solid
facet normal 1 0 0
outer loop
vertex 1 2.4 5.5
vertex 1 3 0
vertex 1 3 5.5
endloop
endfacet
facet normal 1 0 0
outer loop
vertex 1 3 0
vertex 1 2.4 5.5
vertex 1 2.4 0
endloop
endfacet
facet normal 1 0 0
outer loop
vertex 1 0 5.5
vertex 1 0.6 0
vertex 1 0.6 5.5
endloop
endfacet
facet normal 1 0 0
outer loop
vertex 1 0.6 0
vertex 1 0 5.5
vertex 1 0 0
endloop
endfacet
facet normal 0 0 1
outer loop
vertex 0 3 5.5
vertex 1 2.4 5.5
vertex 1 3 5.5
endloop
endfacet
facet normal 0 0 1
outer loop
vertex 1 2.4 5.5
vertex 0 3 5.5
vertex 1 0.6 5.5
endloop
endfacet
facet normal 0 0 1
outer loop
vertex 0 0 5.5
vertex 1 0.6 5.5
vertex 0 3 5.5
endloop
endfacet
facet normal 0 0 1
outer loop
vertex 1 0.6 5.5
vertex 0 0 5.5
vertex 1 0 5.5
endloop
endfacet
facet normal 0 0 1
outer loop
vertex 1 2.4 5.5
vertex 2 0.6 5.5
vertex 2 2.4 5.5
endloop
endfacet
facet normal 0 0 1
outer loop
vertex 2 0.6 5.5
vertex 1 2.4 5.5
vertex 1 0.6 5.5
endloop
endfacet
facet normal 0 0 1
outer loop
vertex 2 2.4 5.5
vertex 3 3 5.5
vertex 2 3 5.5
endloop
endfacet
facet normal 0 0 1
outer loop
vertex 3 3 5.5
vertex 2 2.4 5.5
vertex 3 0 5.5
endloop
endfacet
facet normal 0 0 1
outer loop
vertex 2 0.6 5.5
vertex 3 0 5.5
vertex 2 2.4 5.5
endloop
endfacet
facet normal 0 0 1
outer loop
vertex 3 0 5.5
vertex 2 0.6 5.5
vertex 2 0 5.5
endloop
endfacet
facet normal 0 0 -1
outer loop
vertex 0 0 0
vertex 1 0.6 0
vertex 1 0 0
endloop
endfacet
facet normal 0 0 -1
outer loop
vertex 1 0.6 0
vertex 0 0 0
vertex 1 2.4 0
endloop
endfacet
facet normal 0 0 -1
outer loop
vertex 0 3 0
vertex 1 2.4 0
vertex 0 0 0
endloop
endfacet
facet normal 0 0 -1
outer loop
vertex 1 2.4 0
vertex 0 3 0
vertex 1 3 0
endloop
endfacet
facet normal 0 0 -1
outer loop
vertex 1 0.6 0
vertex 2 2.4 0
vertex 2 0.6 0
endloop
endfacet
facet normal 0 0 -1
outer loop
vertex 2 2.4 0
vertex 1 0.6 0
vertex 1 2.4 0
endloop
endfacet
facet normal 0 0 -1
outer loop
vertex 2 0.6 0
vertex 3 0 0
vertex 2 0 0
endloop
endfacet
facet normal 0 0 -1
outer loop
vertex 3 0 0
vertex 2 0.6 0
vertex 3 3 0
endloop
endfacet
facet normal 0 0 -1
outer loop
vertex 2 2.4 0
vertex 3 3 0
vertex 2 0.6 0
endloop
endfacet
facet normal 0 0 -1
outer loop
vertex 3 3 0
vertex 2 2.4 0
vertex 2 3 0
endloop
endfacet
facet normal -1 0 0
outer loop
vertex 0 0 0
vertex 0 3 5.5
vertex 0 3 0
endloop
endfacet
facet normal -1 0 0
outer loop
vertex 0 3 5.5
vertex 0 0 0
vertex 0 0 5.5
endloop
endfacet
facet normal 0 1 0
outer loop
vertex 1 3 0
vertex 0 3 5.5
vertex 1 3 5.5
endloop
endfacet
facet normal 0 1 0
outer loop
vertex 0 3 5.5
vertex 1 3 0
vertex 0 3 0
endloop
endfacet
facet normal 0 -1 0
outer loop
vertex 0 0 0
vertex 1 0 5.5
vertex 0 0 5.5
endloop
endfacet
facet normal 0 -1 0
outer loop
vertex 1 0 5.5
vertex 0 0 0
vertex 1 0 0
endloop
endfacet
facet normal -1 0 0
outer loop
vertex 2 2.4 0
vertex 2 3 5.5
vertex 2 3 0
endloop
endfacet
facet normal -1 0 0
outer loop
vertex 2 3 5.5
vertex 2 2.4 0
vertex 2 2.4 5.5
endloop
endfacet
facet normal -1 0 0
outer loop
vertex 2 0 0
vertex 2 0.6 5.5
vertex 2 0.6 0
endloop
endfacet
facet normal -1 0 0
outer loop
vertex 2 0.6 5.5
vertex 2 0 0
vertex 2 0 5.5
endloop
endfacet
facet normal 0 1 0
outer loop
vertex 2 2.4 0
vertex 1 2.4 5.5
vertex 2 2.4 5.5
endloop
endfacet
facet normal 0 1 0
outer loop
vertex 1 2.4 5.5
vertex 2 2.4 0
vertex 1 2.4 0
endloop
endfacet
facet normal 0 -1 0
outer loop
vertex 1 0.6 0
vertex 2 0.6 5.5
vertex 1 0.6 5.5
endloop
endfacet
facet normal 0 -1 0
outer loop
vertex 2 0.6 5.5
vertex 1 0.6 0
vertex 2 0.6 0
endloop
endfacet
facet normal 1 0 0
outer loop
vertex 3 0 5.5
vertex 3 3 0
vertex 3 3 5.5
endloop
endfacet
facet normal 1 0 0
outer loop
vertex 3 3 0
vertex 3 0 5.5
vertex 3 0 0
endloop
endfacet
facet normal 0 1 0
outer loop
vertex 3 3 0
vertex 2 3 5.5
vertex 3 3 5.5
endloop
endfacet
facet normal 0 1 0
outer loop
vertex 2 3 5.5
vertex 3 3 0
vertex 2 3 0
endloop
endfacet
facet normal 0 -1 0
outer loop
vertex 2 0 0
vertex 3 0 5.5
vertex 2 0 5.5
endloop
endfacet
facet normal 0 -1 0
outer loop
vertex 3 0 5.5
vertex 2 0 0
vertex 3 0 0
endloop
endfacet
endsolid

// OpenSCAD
// file: settings.scad
/*
 * SPDX-FileCopyrightText: 2022 Rafael G. Martins <rafael@rafaelmartins.eng.br>
 * SPDX-License-Identifier: CERN-OHL-S-2.0
 */

thickness = 2;

pcb_width = 84.582;
pcb_length = 36.322;
pcb_screw1_x = 2.921;
pcb_screw1_y = pcb_length - 5.207 - 12.192;
pcb_screw2_x = pcb_screw1_x + 17.018;
pcb_screw2_y = pcb_screw1_y + 12.192;
pcb_screw3_x = pcb_screw2_x + 22.352;
pcb_screw3_y = pcb_screw2_y;
pcb_screw_base_height = 8;
pcb_screw_base_d = 5;
pcb_screw_d = 2;
pcb_padding_x = thickness + 0.5;
pcb_padding_y = thickness + 1;

screw_d = 2;
screw_h = 7;

usb_height = 4.4;
usb_width = 8.2;
usb_distance_x = pcb_padding_x + 19.939 - usb_width / 2;
usb_distance_z = thickness + pcb_screw_base_height + 1.6 - 0.1;

button0_x = 8.763;
button0_y = 6.985;
button_d = 10;
button_distance = 22.352;

led_width = 1.8;
led_length = 1;
led_margin = 1;
led_x = button0_x + 3 * button_distance;
led_y = 5.207 + 12.192;
led_d = 3.4;

gap = 0;

width = pcb_width + 2 * pcb_padding_x;
length = pcb_length + 2 * pcb_padding_y;
height = usb_distance_z + usb_height + 0.8 + thickness;
// main file
/*
 * SPDX-FileCopyrightText: 2022 Rafael G. Martins <rafael@rafaelmartins.eng.br>
 * SPDX-License-Identifier: CERN-OHL-S-2.0
 */

include <settings.scad>

width_ = 3;
length_ = 2 * led_margin + led_length;
height_ = pcb_screw_base_height - 2.5;

cube([led_margin, width_, height_]);
translate([led_margin, (width_ - led_width) / 2, 0])
    cube([led_length, led_width, height_]);
translate([length_ - led_margin, 0, 0])
    cube([led_margin, width_, height_]);
